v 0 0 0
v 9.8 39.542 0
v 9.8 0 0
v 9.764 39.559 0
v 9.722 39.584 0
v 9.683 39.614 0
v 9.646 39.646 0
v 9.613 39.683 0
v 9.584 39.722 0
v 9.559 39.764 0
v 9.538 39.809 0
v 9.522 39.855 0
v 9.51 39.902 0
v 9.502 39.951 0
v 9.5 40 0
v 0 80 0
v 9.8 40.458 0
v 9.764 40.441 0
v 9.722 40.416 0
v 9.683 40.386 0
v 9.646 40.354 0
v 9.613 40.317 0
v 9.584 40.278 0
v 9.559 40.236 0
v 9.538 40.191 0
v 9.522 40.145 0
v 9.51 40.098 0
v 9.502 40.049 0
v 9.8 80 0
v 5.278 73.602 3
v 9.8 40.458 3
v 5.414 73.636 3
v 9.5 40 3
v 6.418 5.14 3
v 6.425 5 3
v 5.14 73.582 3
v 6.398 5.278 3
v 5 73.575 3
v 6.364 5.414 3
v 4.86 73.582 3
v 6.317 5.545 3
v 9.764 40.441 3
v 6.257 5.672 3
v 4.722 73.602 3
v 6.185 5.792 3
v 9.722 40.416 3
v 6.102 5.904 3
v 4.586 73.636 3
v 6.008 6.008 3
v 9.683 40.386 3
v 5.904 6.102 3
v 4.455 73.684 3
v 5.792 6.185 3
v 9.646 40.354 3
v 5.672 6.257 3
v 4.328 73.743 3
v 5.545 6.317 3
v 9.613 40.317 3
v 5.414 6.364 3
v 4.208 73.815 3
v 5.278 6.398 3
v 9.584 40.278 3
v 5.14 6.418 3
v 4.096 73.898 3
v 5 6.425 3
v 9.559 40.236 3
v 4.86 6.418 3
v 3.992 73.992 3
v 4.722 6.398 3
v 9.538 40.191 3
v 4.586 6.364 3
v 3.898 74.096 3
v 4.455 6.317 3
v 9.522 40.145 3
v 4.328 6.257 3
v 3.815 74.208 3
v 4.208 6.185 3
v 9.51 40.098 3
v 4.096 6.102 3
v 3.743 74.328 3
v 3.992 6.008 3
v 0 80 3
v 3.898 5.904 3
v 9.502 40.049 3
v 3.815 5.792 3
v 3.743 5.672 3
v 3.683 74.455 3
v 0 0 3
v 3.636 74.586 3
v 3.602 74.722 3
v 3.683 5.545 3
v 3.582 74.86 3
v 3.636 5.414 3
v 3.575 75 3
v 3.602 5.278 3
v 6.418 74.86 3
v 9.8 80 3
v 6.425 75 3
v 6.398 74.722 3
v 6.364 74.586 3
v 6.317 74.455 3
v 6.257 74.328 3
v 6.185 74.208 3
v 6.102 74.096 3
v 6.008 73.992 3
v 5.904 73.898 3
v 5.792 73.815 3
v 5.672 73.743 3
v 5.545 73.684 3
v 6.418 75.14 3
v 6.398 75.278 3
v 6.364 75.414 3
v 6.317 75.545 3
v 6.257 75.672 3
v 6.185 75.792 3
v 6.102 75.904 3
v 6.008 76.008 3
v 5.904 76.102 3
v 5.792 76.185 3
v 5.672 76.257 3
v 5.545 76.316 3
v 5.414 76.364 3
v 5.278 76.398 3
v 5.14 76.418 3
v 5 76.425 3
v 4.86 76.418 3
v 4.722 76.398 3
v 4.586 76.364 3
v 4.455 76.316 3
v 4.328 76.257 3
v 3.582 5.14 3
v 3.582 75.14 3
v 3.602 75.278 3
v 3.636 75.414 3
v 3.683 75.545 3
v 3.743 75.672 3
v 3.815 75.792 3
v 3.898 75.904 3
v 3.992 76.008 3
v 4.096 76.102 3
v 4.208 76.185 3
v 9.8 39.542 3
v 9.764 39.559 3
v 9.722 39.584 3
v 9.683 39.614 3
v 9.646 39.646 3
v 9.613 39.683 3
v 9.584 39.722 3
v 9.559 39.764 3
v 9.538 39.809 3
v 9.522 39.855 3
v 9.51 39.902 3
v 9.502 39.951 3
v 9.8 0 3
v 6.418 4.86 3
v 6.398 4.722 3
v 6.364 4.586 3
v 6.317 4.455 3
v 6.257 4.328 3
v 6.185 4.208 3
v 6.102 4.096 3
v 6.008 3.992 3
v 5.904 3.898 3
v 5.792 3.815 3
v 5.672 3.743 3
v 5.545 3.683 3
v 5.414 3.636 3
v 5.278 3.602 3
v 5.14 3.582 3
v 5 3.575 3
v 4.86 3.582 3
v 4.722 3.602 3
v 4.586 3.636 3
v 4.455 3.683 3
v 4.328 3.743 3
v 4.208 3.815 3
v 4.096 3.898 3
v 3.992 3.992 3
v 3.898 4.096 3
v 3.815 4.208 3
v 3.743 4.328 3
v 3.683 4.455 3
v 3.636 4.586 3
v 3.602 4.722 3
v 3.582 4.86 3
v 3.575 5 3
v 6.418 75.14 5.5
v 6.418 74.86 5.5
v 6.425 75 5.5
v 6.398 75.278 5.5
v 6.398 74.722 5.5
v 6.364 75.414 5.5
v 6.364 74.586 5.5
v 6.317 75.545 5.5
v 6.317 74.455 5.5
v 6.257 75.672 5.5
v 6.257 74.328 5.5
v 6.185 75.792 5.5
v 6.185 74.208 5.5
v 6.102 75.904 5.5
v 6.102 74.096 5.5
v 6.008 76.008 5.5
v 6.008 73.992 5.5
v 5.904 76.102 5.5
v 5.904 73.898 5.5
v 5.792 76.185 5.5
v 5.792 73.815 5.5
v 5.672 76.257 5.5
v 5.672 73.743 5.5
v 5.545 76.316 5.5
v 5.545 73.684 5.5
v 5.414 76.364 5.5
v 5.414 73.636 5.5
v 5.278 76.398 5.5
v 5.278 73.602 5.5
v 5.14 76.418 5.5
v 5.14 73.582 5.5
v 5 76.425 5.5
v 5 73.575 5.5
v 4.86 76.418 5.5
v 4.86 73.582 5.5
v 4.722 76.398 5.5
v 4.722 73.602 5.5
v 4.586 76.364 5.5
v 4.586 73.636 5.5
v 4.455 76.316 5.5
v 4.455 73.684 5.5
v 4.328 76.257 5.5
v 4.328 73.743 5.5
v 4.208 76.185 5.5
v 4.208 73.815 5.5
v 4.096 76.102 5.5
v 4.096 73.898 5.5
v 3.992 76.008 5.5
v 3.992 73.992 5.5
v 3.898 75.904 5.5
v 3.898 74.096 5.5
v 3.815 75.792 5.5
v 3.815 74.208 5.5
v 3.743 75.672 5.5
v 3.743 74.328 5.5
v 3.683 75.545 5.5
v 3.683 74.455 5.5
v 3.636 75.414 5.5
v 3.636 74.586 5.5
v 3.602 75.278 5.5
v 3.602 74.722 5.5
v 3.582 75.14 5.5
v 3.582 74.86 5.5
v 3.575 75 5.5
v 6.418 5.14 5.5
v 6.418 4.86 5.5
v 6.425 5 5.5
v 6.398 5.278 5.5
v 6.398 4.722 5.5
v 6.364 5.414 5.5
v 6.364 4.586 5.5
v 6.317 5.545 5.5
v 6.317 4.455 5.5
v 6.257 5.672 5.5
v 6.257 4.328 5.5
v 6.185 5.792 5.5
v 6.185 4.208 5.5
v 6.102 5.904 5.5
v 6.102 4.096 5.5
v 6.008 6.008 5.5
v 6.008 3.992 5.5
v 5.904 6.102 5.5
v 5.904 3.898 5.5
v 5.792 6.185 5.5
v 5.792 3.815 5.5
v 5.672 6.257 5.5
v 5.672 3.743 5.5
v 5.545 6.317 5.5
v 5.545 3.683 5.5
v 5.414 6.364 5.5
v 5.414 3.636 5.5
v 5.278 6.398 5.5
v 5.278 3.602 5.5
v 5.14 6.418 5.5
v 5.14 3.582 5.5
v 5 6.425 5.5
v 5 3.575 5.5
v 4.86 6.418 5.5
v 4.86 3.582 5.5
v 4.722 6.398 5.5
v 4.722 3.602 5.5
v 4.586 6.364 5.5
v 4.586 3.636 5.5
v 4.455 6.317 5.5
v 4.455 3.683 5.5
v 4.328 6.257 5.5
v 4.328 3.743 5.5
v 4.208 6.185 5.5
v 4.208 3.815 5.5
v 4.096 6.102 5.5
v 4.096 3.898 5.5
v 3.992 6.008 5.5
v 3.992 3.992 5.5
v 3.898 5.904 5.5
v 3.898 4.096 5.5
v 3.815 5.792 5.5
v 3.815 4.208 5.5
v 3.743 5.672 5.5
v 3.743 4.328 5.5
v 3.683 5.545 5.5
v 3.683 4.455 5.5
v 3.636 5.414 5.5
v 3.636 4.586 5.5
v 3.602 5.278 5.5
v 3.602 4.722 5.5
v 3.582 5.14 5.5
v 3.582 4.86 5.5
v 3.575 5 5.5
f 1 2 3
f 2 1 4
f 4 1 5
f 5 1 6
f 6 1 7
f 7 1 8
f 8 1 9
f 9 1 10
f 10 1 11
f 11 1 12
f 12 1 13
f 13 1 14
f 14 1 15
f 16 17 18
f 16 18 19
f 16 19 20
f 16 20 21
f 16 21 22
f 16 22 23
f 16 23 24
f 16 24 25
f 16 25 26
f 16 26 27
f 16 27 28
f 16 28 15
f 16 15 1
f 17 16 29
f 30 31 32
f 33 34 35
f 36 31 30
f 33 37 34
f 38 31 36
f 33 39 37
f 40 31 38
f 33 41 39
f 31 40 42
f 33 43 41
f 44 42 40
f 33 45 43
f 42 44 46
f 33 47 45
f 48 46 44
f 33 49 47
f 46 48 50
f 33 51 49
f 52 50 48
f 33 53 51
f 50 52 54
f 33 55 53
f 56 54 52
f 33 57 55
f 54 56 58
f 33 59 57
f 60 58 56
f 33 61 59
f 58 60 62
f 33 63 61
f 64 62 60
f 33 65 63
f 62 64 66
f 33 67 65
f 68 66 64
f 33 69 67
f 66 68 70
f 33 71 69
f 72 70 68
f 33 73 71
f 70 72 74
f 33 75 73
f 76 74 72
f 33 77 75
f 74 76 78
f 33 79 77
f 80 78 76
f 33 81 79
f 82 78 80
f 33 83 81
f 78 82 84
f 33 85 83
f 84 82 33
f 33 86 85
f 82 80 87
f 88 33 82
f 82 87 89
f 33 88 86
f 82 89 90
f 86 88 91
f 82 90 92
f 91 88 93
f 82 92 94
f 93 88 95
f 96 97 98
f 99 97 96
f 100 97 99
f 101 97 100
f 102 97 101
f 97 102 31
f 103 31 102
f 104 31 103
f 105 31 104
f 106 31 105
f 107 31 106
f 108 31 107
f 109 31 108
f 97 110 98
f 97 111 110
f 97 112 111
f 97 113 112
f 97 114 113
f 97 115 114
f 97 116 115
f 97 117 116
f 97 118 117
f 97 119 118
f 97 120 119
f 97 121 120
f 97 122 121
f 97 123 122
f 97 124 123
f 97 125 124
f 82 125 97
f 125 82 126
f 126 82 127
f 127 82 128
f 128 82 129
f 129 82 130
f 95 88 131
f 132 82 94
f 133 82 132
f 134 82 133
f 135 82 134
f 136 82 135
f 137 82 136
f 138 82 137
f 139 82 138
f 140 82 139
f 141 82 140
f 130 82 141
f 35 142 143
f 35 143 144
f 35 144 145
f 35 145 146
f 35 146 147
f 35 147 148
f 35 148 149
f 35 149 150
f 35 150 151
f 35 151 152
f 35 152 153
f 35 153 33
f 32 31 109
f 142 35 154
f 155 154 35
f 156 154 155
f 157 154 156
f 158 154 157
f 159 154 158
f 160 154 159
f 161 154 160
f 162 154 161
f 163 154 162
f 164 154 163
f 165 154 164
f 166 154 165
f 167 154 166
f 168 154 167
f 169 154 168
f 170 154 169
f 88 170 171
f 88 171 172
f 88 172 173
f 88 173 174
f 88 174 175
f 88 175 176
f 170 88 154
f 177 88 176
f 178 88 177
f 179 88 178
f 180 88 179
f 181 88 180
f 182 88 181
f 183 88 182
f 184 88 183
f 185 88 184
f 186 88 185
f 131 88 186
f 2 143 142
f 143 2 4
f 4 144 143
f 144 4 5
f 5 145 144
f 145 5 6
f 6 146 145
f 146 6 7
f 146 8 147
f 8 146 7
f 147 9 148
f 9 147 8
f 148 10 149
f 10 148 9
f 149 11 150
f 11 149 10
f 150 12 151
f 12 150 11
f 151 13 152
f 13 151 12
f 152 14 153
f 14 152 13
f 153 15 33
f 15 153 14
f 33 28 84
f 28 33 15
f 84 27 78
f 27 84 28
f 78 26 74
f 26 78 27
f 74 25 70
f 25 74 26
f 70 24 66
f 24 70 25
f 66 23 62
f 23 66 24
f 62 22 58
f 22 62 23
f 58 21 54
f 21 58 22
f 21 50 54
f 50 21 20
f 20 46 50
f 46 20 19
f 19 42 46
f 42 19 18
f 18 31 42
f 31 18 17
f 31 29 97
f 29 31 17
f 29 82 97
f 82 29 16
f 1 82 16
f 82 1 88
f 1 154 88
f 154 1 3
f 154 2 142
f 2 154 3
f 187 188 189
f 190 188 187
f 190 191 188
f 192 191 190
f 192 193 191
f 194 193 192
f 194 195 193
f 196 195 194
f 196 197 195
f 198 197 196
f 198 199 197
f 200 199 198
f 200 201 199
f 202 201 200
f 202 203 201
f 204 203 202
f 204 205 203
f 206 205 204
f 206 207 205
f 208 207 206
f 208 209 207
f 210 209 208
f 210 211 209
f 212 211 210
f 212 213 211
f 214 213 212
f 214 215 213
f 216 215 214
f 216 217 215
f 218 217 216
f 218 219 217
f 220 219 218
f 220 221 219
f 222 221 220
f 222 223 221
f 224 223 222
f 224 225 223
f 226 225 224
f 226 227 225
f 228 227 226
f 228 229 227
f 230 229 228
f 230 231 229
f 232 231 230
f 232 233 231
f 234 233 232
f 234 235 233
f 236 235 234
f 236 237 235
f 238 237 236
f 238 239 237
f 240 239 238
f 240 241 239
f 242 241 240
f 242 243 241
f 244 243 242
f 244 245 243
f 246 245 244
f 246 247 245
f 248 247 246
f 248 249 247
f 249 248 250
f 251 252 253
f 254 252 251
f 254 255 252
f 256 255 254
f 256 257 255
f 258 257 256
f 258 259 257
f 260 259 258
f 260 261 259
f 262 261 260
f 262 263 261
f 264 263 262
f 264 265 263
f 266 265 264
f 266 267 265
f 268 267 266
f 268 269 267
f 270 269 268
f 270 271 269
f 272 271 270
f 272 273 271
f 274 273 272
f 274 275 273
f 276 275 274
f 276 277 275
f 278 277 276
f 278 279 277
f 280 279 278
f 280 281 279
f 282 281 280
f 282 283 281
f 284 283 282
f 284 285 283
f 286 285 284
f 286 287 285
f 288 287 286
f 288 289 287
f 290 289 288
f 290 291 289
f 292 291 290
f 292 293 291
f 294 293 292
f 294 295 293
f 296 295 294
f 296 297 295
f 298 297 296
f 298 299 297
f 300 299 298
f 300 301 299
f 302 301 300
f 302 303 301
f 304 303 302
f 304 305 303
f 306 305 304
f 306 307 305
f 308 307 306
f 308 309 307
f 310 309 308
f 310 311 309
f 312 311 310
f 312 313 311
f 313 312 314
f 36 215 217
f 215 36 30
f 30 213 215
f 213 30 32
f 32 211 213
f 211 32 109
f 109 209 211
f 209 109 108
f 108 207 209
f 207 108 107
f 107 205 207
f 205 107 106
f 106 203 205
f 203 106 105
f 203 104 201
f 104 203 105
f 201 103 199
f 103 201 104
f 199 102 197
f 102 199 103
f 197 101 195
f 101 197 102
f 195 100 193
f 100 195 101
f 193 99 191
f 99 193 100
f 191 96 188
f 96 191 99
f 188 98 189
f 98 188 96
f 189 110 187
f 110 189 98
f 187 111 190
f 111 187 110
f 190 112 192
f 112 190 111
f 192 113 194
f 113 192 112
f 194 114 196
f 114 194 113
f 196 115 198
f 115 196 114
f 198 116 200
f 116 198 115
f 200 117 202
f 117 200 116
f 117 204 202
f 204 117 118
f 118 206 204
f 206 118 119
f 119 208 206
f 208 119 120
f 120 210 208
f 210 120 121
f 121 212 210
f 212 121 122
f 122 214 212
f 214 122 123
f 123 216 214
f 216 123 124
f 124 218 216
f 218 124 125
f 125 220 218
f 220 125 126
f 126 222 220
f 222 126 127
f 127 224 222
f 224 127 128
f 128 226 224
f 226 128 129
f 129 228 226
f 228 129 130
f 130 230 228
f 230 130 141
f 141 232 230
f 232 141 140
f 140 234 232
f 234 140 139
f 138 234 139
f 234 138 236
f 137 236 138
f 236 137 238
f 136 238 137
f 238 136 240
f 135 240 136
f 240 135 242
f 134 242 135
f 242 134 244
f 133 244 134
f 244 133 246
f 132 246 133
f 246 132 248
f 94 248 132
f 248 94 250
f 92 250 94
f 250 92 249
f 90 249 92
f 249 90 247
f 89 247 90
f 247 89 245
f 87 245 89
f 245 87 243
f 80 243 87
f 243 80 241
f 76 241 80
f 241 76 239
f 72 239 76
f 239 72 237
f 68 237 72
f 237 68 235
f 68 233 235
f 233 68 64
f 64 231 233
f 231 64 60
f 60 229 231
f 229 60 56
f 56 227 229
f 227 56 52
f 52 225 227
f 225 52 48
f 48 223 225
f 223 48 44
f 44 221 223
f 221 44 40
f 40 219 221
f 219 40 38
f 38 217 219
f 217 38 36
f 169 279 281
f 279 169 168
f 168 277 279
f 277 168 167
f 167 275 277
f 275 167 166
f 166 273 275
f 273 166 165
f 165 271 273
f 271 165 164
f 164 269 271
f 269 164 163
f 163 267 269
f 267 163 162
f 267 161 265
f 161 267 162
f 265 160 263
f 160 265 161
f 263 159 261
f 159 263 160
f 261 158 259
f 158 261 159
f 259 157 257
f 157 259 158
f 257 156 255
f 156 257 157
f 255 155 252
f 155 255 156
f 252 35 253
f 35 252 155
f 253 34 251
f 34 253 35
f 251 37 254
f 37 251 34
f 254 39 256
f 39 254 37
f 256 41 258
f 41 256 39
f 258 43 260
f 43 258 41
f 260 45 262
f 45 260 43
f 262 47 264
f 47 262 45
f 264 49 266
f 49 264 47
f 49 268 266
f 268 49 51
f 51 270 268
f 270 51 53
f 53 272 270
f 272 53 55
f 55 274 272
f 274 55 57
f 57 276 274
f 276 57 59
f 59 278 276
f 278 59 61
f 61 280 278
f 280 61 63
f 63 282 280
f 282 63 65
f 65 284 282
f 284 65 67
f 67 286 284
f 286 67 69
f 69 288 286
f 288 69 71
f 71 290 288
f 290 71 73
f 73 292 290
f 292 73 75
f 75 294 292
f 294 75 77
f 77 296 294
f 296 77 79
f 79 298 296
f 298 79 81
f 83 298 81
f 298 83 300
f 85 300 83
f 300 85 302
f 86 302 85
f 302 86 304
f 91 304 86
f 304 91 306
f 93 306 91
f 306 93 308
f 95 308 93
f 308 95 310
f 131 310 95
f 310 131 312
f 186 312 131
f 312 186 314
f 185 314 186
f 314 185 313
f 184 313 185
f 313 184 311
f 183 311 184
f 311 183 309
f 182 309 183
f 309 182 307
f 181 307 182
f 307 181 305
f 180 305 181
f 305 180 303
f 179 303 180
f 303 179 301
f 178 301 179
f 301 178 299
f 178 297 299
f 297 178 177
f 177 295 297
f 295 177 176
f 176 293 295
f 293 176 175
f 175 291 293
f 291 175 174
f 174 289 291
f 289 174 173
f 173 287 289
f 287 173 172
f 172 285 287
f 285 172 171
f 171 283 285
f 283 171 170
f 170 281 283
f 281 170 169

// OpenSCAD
// file: TM4-inserts/common/params.scad
$fn = $preview ? 32 : 64;

// Value of kerf to apply when lasercutting things.
// Value is based on the experience using Epilog Mini machine in
// Google WFC Makerspace.
kerf = 0.2;

// Spacing between insert and miniatures bases to allow to slick fit.
insert_spacing = 0.2;
magnet_spacing = 0.15;

// Default values
//
// Default diameter of magnets used for my miniatures.
default_magnet_diameter = 3;
base_height = 3;
pin_height = 2.5;
// file: TM4-inserts/common/kow.scad
include <params.scad>;

module MagnetSockets(unit_type, only_diagonal = false) {
  baseSize = BaseSize(unit_type);

  translate([ 5, baseSize[1] - 5 ]) children(0);
  translate([ baseSize[0] - 5, 5 ]) children(0);

  if (!only_diagonal) {
    translate([ 5, 5 ]) children(0);
    translate([ baseSize[0] - 5, baseSize[1] - 5 ]) children(0);
  }
}

module Magnet(d = default_magnet_diameter, offset = 0) {
  circle(d = d + offset);
}

module BM4Sockets(unit_type, spacing, only_diagonal = false) {
  MagnetSockets(unit_type = unit_type, only_diagonal = only_diagonal) {
    Magnet(offset = spacing);
  }
}

module Base(unit_type, extraMargin = [ 0, 0 ]) {
  square(BaseSize(unit_type) + extraMargin);
}

function BaseSize(unit_type) = unit_type == "infantry"         ? [ 20, 20 ]
                               : unit_type == "heavy_infantry" ? [ 25, 25 ]
                               : unit_type == "cavalry"        ? [ 25, 50 ]
                               : unit_type == "lrginf"         ? [ 40, 40 ]
                               : unit_type == "lrgcav"         ? [ 50, 50 ]
                               : unit_type == "titan"          ? [ 75, 75 ]
                                                               : [ 10, 10 ];

function BaseNum(unit_type, unitSize) =
    unit_type == "infantry"  ? unitSize == "legion"     ? [ 10, 6 ]
                               : unitSize == "horde"    ? [ 10, 4 ]
                               : unitSize == "regiment" ? [ 5, 4 ]
                                                        : [ 5, 2 ]
    : unit_type == "cavalry" ? unitSize == "regiment" ? [ 5, 2 ] : [ 5, 1 ]
    : unit_type == "lrginf"  ? unitSize == "regiment" ? [ 3, 1 ] : [ 3, 2 ]
    : unit_type == "lrgcav"  ? unitSize == "regiment" ? [ 3, 1 ]
                               : unitSize == "horde"  ? [ 3, 2 ]
                                                      : [ 1, 1 ]
                             : [ 1, 1 ];
// file: TM4-inserts/libinsert.scad
include <common/kow.scad>;

module Pin() {
  Magnet(offset = -magnet_spacing);
}

module LInsert(size, unit_size, unit_type = "infantry") {
  base_num = BaseNum(unit_type, unit_size);
  base_size = BaseSize(unit_type);

  union() {
    width = size * base_size[0];
    length = base_num[1] * base_size[1];

    linear_extrude(height = base_height) {
      square(size =
                 [ width - 10 - insert_spacing, base_num[1] * base_size[1] ]);
      translate(v = [ 0, length - base_size[1] + insert_spacing]) {
        square(size = [ width - insert_spacing, base_size[1] - insert_spacing ]);
      }
    }
    translate(v = [ 0, 0, base_height ]) linear_extrude(height = pin_height) {
      translate(v = [ 5, 5 ]) Pin();
      translate(v = [ 5, length - 5 ]) Pin();
      translate(v = [ width - 5, length - 5 ]) Pin();

      if (size > 1) {
        translate(v = [ width - 5 - 10, 5 ]) Pin();
      }
    }
  }
}

module SideInsert(size, unit_size, unit_type = "infantry") {
  base_num = BaseNum(unit_type, unit_size);
  base_size = BaseSize(unit_type);

  union() {
    width = size * base_size[0];
    length = base_num[1] * base_size[1];

    linear_extrude(height = base_height) {
      difference() {
        square(size = [ width - insert_spacing, length ]);
        translate([width, length/2]) circle(0.5);
      }
    }
    translate(v = [ 0, 0, 3 ]) linear_extrude(height = pin_height) {
      translate(v = [ 5, 5 ]) Pin();
      translate(v = [ 5, length - 5 ]) Pin();
      if (size >= 1) {
        translate(v = [ width - 5, 5 ]) Pin();
        translate(v = [ width - 5, length - 5 ]) Pin();
      }
    }
  }
}
// main file
use <TM4-inserts/libinsert.scad>;

$fn = $preview ? 32 : 64;

SideInsert(0.5, "regiment", "infantry");
